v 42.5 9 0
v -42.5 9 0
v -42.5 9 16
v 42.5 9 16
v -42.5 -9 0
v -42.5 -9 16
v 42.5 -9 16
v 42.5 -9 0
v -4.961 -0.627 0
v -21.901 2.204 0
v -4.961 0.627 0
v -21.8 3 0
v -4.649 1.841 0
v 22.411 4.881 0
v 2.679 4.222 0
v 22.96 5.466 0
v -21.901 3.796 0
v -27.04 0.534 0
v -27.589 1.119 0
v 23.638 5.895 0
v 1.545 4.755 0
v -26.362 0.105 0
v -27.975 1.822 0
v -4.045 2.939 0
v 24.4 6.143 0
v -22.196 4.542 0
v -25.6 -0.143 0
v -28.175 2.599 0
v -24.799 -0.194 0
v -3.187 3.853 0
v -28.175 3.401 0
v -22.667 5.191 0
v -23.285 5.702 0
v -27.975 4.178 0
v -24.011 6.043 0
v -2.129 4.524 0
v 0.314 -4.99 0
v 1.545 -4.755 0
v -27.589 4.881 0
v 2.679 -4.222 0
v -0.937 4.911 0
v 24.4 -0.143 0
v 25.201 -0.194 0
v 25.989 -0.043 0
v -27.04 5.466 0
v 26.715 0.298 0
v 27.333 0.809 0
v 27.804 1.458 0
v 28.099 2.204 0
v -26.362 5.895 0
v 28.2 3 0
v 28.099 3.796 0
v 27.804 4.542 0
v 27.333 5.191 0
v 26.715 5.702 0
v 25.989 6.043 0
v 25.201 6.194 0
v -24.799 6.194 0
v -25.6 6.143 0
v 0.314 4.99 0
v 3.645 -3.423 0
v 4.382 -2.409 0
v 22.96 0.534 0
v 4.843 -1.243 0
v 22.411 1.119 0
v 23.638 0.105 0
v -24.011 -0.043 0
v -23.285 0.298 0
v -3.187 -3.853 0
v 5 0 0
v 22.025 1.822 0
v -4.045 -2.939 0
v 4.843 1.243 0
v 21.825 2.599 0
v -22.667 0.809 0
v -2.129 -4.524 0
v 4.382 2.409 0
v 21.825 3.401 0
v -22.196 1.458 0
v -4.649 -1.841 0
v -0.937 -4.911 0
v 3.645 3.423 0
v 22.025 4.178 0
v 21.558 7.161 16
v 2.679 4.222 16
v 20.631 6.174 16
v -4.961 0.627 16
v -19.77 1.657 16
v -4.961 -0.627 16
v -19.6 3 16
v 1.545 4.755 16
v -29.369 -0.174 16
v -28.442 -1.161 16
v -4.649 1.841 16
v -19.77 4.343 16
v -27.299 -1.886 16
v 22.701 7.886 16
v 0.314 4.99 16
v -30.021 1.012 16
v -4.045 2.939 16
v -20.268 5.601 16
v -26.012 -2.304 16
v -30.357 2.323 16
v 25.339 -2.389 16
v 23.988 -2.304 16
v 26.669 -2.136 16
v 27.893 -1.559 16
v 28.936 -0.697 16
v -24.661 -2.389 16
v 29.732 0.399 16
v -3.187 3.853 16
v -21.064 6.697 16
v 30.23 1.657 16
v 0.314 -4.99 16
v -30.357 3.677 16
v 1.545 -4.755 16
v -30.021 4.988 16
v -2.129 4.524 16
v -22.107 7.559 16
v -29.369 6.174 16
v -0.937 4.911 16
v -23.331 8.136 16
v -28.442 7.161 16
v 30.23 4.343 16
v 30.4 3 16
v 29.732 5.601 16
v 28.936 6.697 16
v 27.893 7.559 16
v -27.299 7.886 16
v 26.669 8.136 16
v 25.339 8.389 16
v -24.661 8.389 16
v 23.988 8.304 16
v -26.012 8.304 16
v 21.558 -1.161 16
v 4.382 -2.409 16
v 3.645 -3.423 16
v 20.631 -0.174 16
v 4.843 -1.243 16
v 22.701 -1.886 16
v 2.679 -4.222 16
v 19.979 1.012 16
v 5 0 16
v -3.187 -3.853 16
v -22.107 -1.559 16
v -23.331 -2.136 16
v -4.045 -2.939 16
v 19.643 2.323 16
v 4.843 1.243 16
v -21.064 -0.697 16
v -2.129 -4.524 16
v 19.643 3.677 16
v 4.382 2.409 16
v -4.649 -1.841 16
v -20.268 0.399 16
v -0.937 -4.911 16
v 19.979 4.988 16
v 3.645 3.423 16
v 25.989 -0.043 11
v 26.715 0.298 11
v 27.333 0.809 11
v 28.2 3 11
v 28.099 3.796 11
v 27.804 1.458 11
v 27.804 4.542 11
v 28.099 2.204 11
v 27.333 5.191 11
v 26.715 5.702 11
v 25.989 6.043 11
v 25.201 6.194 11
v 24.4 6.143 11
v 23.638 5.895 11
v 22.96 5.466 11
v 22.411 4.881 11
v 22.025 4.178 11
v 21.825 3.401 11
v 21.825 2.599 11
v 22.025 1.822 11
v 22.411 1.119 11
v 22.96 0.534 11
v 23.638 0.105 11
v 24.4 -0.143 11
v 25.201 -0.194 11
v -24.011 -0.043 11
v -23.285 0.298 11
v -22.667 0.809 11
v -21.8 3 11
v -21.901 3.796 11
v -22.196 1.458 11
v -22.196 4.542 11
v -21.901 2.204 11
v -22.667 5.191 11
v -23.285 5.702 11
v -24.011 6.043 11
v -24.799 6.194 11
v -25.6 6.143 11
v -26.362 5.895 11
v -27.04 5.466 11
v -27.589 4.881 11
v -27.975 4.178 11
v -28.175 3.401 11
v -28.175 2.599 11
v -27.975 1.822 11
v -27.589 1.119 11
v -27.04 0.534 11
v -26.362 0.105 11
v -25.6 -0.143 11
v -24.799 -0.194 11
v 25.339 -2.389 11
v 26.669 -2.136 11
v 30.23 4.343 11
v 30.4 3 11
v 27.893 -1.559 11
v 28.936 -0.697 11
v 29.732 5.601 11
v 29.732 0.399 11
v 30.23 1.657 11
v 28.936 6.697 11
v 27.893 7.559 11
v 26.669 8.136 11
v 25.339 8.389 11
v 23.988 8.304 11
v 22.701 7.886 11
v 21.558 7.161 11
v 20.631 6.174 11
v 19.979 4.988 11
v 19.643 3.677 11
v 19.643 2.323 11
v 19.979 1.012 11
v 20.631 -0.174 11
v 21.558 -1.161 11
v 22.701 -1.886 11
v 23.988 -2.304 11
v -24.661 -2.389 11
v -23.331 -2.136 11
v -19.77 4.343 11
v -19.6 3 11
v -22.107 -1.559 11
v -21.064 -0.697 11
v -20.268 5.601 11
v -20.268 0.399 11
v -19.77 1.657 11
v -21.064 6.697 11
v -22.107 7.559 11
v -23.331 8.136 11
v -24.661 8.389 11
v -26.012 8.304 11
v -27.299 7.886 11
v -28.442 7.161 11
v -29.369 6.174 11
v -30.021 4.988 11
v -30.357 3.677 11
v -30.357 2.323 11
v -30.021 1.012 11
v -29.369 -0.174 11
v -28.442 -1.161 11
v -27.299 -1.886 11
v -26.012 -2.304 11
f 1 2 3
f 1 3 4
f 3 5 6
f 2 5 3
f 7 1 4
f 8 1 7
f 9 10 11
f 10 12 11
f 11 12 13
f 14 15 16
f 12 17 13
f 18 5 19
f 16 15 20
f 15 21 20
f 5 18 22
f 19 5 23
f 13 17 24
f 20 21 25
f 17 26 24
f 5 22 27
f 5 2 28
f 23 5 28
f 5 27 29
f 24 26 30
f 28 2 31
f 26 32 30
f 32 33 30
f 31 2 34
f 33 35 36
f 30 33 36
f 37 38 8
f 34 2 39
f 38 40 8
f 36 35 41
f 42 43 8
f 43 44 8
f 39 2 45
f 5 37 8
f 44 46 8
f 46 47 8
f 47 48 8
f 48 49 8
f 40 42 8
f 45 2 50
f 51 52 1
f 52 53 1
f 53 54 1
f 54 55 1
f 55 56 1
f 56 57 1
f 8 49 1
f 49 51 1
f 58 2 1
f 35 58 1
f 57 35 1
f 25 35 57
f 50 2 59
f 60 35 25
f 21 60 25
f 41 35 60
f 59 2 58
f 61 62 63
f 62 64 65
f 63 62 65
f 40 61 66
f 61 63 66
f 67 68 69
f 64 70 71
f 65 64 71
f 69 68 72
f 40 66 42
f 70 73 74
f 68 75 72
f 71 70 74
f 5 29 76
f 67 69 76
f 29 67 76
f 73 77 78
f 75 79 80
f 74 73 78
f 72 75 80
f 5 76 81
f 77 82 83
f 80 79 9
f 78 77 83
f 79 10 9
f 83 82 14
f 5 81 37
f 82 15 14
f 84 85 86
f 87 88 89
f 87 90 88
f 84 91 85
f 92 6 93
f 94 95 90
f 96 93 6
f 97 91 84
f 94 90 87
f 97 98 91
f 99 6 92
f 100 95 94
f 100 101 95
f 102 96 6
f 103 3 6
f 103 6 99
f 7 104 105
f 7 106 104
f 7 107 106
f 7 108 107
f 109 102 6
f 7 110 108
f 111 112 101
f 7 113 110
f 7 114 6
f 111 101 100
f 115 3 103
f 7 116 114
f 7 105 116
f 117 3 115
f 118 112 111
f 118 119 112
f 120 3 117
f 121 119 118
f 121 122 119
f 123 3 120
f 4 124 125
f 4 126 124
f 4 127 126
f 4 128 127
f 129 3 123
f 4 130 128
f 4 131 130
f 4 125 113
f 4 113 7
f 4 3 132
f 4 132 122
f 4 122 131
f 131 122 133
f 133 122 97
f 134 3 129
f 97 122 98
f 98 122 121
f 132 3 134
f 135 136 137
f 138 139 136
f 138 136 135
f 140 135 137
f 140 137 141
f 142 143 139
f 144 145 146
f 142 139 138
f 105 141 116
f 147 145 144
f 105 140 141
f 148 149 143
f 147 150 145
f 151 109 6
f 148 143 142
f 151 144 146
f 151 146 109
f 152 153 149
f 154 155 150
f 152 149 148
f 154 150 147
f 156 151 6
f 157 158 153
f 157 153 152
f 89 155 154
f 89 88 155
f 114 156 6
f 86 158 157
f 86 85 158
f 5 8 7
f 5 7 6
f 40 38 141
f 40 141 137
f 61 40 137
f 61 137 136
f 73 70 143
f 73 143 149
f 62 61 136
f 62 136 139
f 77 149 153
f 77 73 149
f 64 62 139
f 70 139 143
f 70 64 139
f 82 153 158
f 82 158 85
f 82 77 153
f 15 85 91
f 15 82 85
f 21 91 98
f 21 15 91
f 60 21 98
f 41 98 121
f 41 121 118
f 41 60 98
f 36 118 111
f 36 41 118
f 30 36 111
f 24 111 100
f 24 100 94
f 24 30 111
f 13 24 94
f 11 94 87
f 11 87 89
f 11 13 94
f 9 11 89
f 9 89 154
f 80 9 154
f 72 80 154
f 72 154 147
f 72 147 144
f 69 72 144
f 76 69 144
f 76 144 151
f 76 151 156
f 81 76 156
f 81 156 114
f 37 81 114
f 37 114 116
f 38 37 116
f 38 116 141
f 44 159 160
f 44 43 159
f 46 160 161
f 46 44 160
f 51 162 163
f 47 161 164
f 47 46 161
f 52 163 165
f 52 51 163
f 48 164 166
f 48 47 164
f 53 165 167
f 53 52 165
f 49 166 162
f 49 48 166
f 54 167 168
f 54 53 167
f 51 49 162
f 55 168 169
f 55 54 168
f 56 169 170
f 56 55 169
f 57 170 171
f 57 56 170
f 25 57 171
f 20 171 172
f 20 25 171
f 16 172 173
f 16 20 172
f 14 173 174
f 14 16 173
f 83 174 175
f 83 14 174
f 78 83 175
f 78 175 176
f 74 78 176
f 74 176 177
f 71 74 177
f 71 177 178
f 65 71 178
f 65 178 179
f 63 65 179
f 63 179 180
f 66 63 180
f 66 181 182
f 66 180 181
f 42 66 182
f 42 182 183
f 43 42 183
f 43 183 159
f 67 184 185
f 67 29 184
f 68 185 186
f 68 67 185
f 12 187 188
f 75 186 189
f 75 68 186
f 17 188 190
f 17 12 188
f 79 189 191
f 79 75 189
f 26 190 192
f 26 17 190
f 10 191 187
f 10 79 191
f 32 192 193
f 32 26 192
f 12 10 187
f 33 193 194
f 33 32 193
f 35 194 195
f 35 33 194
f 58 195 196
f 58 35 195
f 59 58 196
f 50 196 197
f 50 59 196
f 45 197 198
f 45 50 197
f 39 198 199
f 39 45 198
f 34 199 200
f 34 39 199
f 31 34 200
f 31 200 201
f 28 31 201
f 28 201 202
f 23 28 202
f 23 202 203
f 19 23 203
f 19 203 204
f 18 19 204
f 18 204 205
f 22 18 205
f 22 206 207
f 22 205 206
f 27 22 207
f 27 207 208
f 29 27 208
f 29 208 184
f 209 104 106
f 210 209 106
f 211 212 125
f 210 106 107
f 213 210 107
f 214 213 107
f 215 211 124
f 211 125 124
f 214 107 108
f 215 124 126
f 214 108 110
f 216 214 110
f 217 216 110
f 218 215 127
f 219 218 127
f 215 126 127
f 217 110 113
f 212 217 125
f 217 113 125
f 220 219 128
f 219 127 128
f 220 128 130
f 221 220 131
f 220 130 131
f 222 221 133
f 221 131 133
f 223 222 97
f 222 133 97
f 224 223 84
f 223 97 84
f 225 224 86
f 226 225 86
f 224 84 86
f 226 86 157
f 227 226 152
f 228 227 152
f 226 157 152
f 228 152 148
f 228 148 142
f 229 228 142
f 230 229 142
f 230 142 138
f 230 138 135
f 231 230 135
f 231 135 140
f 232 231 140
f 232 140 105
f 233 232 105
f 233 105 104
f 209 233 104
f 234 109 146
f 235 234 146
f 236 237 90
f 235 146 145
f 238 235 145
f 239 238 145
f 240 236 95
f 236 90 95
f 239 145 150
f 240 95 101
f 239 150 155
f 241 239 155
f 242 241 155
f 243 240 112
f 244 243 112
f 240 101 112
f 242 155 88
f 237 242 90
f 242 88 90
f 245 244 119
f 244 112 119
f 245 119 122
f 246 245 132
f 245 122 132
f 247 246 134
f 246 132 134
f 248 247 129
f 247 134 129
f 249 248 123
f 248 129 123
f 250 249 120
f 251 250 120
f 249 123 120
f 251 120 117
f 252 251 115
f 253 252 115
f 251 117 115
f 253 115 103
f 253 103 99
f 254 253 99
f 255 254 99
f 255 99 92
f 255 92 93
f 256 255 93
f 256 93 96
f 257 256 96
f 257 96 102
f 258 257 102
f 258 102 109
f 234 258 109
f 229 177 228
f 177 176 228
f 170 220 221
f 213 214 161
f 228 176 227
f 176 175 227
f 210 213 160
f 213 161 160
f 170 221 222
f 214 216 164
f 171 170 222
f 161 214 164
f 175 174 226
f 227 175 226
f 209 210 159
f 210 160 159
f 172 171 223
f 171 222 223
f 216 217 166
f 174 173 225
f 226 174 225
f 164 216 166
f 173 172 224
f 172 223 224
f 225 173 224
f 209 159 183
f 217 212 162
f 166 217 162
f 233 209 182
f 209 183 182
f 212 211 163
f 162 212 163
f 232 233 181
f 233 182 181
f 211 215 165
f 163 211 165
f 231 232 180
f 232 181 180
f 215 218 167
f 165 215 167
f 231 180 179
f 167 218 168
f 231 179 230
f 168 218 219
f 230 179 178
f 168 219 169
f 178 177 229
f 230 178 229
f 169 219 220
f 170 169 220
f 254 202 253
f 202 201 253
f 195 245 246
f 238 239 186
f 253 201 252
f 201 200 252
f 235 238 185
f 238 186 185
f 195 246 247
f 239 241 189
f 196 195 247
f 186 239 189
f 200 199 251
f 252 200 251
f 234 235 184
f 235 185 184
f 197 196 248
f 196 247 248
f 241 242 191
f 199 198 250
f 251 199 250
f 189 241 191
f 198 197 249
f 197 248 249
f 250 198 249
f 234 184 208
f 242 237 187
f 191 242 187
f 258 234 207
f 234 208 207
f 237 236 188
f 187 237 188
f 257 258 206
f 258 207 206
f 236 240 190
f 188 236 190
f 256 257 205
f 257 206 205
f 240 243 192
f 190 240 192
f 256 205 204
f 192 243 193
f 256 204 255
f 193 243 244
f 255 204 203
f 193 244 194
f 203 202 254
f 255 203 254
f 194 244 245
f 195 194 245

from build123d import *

# Parameters (mm, degrees)
SKETCH_W     = 85
SKETCH_H     = 18
SKETCH_R     = 5
SKETCH_R_2   = 3.2
PAD_DEPTH    = 16
SKETCH001_R  = 5.4
POCKET_DEPTH = 5


with BuildPart() as part:
    # Sketch → Pad (new body)
    with BuildSketch(Plane.XY):
        Rectangle(SKETCH_W, SKETCH_H)
        Circle(SKETCH_R, mode=Mode.SUBTRACT)
        with Locations((-25, 3)):
            Circle(SKETCH_R_2, mode=Mode.SUBTRACT)
        with Locations((25, 3)):
            Circle(SKETCH_R_2, mode=Mode.SUBTRACT)
    extrude(amount=PAD_DEPTH)

    # Sketch001 → Pocket (cut)
    with BuildSketch(Plane.XY.offset(16)):
        with Locations((-25, 3)):
            Circle(SKETCH001_R)
        with Locations((25, 3)):
            Circle(SKETCH001_R)
    extrude(amount=-POCKET_DEPTH, mode=Mode.SUBTRACT)


solid = part.part
